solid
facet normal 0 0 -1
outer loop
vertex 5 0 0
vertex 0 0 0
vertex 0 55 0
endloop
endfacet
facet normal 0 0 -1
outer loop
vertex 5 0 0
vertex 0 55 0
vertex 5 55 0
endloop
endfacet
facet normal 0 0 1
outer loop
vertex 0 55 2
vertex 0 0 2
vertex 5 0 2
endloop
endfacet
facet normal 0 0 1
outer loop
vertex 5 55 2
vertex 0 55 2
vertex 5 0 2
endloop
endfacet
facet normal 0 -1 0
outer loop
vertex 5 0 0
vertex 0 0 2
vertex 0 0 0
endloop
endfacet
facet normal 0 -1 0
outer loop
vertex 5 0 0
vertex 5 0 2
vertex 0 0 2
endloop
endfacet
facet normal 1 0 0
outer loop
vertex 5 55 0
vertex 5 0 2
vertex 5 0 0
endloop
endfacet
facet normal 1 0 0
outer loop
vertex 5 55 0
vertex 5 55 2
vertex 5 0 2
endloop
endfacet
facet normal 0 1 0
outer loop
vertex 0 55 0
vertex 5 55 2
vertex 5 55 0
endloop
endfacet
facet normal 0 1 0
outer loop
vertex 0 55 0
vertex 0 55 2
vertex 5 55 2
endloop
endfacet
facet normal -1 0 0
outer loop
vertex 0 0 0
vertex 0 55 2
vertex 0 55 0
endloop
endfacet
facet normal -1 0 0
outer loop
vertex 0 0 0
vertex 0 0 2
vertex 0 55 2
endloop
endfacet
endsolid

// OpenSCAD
// Not enough room to make interlocking
//   Material Thickness = 2
//   Overall length = 55 

module spool_box_2d() {
    square([5,55]);    
}

module spool_box() {
    linear_extrude(2) {
        spool_box_2d();
    }
}

spool_box();
